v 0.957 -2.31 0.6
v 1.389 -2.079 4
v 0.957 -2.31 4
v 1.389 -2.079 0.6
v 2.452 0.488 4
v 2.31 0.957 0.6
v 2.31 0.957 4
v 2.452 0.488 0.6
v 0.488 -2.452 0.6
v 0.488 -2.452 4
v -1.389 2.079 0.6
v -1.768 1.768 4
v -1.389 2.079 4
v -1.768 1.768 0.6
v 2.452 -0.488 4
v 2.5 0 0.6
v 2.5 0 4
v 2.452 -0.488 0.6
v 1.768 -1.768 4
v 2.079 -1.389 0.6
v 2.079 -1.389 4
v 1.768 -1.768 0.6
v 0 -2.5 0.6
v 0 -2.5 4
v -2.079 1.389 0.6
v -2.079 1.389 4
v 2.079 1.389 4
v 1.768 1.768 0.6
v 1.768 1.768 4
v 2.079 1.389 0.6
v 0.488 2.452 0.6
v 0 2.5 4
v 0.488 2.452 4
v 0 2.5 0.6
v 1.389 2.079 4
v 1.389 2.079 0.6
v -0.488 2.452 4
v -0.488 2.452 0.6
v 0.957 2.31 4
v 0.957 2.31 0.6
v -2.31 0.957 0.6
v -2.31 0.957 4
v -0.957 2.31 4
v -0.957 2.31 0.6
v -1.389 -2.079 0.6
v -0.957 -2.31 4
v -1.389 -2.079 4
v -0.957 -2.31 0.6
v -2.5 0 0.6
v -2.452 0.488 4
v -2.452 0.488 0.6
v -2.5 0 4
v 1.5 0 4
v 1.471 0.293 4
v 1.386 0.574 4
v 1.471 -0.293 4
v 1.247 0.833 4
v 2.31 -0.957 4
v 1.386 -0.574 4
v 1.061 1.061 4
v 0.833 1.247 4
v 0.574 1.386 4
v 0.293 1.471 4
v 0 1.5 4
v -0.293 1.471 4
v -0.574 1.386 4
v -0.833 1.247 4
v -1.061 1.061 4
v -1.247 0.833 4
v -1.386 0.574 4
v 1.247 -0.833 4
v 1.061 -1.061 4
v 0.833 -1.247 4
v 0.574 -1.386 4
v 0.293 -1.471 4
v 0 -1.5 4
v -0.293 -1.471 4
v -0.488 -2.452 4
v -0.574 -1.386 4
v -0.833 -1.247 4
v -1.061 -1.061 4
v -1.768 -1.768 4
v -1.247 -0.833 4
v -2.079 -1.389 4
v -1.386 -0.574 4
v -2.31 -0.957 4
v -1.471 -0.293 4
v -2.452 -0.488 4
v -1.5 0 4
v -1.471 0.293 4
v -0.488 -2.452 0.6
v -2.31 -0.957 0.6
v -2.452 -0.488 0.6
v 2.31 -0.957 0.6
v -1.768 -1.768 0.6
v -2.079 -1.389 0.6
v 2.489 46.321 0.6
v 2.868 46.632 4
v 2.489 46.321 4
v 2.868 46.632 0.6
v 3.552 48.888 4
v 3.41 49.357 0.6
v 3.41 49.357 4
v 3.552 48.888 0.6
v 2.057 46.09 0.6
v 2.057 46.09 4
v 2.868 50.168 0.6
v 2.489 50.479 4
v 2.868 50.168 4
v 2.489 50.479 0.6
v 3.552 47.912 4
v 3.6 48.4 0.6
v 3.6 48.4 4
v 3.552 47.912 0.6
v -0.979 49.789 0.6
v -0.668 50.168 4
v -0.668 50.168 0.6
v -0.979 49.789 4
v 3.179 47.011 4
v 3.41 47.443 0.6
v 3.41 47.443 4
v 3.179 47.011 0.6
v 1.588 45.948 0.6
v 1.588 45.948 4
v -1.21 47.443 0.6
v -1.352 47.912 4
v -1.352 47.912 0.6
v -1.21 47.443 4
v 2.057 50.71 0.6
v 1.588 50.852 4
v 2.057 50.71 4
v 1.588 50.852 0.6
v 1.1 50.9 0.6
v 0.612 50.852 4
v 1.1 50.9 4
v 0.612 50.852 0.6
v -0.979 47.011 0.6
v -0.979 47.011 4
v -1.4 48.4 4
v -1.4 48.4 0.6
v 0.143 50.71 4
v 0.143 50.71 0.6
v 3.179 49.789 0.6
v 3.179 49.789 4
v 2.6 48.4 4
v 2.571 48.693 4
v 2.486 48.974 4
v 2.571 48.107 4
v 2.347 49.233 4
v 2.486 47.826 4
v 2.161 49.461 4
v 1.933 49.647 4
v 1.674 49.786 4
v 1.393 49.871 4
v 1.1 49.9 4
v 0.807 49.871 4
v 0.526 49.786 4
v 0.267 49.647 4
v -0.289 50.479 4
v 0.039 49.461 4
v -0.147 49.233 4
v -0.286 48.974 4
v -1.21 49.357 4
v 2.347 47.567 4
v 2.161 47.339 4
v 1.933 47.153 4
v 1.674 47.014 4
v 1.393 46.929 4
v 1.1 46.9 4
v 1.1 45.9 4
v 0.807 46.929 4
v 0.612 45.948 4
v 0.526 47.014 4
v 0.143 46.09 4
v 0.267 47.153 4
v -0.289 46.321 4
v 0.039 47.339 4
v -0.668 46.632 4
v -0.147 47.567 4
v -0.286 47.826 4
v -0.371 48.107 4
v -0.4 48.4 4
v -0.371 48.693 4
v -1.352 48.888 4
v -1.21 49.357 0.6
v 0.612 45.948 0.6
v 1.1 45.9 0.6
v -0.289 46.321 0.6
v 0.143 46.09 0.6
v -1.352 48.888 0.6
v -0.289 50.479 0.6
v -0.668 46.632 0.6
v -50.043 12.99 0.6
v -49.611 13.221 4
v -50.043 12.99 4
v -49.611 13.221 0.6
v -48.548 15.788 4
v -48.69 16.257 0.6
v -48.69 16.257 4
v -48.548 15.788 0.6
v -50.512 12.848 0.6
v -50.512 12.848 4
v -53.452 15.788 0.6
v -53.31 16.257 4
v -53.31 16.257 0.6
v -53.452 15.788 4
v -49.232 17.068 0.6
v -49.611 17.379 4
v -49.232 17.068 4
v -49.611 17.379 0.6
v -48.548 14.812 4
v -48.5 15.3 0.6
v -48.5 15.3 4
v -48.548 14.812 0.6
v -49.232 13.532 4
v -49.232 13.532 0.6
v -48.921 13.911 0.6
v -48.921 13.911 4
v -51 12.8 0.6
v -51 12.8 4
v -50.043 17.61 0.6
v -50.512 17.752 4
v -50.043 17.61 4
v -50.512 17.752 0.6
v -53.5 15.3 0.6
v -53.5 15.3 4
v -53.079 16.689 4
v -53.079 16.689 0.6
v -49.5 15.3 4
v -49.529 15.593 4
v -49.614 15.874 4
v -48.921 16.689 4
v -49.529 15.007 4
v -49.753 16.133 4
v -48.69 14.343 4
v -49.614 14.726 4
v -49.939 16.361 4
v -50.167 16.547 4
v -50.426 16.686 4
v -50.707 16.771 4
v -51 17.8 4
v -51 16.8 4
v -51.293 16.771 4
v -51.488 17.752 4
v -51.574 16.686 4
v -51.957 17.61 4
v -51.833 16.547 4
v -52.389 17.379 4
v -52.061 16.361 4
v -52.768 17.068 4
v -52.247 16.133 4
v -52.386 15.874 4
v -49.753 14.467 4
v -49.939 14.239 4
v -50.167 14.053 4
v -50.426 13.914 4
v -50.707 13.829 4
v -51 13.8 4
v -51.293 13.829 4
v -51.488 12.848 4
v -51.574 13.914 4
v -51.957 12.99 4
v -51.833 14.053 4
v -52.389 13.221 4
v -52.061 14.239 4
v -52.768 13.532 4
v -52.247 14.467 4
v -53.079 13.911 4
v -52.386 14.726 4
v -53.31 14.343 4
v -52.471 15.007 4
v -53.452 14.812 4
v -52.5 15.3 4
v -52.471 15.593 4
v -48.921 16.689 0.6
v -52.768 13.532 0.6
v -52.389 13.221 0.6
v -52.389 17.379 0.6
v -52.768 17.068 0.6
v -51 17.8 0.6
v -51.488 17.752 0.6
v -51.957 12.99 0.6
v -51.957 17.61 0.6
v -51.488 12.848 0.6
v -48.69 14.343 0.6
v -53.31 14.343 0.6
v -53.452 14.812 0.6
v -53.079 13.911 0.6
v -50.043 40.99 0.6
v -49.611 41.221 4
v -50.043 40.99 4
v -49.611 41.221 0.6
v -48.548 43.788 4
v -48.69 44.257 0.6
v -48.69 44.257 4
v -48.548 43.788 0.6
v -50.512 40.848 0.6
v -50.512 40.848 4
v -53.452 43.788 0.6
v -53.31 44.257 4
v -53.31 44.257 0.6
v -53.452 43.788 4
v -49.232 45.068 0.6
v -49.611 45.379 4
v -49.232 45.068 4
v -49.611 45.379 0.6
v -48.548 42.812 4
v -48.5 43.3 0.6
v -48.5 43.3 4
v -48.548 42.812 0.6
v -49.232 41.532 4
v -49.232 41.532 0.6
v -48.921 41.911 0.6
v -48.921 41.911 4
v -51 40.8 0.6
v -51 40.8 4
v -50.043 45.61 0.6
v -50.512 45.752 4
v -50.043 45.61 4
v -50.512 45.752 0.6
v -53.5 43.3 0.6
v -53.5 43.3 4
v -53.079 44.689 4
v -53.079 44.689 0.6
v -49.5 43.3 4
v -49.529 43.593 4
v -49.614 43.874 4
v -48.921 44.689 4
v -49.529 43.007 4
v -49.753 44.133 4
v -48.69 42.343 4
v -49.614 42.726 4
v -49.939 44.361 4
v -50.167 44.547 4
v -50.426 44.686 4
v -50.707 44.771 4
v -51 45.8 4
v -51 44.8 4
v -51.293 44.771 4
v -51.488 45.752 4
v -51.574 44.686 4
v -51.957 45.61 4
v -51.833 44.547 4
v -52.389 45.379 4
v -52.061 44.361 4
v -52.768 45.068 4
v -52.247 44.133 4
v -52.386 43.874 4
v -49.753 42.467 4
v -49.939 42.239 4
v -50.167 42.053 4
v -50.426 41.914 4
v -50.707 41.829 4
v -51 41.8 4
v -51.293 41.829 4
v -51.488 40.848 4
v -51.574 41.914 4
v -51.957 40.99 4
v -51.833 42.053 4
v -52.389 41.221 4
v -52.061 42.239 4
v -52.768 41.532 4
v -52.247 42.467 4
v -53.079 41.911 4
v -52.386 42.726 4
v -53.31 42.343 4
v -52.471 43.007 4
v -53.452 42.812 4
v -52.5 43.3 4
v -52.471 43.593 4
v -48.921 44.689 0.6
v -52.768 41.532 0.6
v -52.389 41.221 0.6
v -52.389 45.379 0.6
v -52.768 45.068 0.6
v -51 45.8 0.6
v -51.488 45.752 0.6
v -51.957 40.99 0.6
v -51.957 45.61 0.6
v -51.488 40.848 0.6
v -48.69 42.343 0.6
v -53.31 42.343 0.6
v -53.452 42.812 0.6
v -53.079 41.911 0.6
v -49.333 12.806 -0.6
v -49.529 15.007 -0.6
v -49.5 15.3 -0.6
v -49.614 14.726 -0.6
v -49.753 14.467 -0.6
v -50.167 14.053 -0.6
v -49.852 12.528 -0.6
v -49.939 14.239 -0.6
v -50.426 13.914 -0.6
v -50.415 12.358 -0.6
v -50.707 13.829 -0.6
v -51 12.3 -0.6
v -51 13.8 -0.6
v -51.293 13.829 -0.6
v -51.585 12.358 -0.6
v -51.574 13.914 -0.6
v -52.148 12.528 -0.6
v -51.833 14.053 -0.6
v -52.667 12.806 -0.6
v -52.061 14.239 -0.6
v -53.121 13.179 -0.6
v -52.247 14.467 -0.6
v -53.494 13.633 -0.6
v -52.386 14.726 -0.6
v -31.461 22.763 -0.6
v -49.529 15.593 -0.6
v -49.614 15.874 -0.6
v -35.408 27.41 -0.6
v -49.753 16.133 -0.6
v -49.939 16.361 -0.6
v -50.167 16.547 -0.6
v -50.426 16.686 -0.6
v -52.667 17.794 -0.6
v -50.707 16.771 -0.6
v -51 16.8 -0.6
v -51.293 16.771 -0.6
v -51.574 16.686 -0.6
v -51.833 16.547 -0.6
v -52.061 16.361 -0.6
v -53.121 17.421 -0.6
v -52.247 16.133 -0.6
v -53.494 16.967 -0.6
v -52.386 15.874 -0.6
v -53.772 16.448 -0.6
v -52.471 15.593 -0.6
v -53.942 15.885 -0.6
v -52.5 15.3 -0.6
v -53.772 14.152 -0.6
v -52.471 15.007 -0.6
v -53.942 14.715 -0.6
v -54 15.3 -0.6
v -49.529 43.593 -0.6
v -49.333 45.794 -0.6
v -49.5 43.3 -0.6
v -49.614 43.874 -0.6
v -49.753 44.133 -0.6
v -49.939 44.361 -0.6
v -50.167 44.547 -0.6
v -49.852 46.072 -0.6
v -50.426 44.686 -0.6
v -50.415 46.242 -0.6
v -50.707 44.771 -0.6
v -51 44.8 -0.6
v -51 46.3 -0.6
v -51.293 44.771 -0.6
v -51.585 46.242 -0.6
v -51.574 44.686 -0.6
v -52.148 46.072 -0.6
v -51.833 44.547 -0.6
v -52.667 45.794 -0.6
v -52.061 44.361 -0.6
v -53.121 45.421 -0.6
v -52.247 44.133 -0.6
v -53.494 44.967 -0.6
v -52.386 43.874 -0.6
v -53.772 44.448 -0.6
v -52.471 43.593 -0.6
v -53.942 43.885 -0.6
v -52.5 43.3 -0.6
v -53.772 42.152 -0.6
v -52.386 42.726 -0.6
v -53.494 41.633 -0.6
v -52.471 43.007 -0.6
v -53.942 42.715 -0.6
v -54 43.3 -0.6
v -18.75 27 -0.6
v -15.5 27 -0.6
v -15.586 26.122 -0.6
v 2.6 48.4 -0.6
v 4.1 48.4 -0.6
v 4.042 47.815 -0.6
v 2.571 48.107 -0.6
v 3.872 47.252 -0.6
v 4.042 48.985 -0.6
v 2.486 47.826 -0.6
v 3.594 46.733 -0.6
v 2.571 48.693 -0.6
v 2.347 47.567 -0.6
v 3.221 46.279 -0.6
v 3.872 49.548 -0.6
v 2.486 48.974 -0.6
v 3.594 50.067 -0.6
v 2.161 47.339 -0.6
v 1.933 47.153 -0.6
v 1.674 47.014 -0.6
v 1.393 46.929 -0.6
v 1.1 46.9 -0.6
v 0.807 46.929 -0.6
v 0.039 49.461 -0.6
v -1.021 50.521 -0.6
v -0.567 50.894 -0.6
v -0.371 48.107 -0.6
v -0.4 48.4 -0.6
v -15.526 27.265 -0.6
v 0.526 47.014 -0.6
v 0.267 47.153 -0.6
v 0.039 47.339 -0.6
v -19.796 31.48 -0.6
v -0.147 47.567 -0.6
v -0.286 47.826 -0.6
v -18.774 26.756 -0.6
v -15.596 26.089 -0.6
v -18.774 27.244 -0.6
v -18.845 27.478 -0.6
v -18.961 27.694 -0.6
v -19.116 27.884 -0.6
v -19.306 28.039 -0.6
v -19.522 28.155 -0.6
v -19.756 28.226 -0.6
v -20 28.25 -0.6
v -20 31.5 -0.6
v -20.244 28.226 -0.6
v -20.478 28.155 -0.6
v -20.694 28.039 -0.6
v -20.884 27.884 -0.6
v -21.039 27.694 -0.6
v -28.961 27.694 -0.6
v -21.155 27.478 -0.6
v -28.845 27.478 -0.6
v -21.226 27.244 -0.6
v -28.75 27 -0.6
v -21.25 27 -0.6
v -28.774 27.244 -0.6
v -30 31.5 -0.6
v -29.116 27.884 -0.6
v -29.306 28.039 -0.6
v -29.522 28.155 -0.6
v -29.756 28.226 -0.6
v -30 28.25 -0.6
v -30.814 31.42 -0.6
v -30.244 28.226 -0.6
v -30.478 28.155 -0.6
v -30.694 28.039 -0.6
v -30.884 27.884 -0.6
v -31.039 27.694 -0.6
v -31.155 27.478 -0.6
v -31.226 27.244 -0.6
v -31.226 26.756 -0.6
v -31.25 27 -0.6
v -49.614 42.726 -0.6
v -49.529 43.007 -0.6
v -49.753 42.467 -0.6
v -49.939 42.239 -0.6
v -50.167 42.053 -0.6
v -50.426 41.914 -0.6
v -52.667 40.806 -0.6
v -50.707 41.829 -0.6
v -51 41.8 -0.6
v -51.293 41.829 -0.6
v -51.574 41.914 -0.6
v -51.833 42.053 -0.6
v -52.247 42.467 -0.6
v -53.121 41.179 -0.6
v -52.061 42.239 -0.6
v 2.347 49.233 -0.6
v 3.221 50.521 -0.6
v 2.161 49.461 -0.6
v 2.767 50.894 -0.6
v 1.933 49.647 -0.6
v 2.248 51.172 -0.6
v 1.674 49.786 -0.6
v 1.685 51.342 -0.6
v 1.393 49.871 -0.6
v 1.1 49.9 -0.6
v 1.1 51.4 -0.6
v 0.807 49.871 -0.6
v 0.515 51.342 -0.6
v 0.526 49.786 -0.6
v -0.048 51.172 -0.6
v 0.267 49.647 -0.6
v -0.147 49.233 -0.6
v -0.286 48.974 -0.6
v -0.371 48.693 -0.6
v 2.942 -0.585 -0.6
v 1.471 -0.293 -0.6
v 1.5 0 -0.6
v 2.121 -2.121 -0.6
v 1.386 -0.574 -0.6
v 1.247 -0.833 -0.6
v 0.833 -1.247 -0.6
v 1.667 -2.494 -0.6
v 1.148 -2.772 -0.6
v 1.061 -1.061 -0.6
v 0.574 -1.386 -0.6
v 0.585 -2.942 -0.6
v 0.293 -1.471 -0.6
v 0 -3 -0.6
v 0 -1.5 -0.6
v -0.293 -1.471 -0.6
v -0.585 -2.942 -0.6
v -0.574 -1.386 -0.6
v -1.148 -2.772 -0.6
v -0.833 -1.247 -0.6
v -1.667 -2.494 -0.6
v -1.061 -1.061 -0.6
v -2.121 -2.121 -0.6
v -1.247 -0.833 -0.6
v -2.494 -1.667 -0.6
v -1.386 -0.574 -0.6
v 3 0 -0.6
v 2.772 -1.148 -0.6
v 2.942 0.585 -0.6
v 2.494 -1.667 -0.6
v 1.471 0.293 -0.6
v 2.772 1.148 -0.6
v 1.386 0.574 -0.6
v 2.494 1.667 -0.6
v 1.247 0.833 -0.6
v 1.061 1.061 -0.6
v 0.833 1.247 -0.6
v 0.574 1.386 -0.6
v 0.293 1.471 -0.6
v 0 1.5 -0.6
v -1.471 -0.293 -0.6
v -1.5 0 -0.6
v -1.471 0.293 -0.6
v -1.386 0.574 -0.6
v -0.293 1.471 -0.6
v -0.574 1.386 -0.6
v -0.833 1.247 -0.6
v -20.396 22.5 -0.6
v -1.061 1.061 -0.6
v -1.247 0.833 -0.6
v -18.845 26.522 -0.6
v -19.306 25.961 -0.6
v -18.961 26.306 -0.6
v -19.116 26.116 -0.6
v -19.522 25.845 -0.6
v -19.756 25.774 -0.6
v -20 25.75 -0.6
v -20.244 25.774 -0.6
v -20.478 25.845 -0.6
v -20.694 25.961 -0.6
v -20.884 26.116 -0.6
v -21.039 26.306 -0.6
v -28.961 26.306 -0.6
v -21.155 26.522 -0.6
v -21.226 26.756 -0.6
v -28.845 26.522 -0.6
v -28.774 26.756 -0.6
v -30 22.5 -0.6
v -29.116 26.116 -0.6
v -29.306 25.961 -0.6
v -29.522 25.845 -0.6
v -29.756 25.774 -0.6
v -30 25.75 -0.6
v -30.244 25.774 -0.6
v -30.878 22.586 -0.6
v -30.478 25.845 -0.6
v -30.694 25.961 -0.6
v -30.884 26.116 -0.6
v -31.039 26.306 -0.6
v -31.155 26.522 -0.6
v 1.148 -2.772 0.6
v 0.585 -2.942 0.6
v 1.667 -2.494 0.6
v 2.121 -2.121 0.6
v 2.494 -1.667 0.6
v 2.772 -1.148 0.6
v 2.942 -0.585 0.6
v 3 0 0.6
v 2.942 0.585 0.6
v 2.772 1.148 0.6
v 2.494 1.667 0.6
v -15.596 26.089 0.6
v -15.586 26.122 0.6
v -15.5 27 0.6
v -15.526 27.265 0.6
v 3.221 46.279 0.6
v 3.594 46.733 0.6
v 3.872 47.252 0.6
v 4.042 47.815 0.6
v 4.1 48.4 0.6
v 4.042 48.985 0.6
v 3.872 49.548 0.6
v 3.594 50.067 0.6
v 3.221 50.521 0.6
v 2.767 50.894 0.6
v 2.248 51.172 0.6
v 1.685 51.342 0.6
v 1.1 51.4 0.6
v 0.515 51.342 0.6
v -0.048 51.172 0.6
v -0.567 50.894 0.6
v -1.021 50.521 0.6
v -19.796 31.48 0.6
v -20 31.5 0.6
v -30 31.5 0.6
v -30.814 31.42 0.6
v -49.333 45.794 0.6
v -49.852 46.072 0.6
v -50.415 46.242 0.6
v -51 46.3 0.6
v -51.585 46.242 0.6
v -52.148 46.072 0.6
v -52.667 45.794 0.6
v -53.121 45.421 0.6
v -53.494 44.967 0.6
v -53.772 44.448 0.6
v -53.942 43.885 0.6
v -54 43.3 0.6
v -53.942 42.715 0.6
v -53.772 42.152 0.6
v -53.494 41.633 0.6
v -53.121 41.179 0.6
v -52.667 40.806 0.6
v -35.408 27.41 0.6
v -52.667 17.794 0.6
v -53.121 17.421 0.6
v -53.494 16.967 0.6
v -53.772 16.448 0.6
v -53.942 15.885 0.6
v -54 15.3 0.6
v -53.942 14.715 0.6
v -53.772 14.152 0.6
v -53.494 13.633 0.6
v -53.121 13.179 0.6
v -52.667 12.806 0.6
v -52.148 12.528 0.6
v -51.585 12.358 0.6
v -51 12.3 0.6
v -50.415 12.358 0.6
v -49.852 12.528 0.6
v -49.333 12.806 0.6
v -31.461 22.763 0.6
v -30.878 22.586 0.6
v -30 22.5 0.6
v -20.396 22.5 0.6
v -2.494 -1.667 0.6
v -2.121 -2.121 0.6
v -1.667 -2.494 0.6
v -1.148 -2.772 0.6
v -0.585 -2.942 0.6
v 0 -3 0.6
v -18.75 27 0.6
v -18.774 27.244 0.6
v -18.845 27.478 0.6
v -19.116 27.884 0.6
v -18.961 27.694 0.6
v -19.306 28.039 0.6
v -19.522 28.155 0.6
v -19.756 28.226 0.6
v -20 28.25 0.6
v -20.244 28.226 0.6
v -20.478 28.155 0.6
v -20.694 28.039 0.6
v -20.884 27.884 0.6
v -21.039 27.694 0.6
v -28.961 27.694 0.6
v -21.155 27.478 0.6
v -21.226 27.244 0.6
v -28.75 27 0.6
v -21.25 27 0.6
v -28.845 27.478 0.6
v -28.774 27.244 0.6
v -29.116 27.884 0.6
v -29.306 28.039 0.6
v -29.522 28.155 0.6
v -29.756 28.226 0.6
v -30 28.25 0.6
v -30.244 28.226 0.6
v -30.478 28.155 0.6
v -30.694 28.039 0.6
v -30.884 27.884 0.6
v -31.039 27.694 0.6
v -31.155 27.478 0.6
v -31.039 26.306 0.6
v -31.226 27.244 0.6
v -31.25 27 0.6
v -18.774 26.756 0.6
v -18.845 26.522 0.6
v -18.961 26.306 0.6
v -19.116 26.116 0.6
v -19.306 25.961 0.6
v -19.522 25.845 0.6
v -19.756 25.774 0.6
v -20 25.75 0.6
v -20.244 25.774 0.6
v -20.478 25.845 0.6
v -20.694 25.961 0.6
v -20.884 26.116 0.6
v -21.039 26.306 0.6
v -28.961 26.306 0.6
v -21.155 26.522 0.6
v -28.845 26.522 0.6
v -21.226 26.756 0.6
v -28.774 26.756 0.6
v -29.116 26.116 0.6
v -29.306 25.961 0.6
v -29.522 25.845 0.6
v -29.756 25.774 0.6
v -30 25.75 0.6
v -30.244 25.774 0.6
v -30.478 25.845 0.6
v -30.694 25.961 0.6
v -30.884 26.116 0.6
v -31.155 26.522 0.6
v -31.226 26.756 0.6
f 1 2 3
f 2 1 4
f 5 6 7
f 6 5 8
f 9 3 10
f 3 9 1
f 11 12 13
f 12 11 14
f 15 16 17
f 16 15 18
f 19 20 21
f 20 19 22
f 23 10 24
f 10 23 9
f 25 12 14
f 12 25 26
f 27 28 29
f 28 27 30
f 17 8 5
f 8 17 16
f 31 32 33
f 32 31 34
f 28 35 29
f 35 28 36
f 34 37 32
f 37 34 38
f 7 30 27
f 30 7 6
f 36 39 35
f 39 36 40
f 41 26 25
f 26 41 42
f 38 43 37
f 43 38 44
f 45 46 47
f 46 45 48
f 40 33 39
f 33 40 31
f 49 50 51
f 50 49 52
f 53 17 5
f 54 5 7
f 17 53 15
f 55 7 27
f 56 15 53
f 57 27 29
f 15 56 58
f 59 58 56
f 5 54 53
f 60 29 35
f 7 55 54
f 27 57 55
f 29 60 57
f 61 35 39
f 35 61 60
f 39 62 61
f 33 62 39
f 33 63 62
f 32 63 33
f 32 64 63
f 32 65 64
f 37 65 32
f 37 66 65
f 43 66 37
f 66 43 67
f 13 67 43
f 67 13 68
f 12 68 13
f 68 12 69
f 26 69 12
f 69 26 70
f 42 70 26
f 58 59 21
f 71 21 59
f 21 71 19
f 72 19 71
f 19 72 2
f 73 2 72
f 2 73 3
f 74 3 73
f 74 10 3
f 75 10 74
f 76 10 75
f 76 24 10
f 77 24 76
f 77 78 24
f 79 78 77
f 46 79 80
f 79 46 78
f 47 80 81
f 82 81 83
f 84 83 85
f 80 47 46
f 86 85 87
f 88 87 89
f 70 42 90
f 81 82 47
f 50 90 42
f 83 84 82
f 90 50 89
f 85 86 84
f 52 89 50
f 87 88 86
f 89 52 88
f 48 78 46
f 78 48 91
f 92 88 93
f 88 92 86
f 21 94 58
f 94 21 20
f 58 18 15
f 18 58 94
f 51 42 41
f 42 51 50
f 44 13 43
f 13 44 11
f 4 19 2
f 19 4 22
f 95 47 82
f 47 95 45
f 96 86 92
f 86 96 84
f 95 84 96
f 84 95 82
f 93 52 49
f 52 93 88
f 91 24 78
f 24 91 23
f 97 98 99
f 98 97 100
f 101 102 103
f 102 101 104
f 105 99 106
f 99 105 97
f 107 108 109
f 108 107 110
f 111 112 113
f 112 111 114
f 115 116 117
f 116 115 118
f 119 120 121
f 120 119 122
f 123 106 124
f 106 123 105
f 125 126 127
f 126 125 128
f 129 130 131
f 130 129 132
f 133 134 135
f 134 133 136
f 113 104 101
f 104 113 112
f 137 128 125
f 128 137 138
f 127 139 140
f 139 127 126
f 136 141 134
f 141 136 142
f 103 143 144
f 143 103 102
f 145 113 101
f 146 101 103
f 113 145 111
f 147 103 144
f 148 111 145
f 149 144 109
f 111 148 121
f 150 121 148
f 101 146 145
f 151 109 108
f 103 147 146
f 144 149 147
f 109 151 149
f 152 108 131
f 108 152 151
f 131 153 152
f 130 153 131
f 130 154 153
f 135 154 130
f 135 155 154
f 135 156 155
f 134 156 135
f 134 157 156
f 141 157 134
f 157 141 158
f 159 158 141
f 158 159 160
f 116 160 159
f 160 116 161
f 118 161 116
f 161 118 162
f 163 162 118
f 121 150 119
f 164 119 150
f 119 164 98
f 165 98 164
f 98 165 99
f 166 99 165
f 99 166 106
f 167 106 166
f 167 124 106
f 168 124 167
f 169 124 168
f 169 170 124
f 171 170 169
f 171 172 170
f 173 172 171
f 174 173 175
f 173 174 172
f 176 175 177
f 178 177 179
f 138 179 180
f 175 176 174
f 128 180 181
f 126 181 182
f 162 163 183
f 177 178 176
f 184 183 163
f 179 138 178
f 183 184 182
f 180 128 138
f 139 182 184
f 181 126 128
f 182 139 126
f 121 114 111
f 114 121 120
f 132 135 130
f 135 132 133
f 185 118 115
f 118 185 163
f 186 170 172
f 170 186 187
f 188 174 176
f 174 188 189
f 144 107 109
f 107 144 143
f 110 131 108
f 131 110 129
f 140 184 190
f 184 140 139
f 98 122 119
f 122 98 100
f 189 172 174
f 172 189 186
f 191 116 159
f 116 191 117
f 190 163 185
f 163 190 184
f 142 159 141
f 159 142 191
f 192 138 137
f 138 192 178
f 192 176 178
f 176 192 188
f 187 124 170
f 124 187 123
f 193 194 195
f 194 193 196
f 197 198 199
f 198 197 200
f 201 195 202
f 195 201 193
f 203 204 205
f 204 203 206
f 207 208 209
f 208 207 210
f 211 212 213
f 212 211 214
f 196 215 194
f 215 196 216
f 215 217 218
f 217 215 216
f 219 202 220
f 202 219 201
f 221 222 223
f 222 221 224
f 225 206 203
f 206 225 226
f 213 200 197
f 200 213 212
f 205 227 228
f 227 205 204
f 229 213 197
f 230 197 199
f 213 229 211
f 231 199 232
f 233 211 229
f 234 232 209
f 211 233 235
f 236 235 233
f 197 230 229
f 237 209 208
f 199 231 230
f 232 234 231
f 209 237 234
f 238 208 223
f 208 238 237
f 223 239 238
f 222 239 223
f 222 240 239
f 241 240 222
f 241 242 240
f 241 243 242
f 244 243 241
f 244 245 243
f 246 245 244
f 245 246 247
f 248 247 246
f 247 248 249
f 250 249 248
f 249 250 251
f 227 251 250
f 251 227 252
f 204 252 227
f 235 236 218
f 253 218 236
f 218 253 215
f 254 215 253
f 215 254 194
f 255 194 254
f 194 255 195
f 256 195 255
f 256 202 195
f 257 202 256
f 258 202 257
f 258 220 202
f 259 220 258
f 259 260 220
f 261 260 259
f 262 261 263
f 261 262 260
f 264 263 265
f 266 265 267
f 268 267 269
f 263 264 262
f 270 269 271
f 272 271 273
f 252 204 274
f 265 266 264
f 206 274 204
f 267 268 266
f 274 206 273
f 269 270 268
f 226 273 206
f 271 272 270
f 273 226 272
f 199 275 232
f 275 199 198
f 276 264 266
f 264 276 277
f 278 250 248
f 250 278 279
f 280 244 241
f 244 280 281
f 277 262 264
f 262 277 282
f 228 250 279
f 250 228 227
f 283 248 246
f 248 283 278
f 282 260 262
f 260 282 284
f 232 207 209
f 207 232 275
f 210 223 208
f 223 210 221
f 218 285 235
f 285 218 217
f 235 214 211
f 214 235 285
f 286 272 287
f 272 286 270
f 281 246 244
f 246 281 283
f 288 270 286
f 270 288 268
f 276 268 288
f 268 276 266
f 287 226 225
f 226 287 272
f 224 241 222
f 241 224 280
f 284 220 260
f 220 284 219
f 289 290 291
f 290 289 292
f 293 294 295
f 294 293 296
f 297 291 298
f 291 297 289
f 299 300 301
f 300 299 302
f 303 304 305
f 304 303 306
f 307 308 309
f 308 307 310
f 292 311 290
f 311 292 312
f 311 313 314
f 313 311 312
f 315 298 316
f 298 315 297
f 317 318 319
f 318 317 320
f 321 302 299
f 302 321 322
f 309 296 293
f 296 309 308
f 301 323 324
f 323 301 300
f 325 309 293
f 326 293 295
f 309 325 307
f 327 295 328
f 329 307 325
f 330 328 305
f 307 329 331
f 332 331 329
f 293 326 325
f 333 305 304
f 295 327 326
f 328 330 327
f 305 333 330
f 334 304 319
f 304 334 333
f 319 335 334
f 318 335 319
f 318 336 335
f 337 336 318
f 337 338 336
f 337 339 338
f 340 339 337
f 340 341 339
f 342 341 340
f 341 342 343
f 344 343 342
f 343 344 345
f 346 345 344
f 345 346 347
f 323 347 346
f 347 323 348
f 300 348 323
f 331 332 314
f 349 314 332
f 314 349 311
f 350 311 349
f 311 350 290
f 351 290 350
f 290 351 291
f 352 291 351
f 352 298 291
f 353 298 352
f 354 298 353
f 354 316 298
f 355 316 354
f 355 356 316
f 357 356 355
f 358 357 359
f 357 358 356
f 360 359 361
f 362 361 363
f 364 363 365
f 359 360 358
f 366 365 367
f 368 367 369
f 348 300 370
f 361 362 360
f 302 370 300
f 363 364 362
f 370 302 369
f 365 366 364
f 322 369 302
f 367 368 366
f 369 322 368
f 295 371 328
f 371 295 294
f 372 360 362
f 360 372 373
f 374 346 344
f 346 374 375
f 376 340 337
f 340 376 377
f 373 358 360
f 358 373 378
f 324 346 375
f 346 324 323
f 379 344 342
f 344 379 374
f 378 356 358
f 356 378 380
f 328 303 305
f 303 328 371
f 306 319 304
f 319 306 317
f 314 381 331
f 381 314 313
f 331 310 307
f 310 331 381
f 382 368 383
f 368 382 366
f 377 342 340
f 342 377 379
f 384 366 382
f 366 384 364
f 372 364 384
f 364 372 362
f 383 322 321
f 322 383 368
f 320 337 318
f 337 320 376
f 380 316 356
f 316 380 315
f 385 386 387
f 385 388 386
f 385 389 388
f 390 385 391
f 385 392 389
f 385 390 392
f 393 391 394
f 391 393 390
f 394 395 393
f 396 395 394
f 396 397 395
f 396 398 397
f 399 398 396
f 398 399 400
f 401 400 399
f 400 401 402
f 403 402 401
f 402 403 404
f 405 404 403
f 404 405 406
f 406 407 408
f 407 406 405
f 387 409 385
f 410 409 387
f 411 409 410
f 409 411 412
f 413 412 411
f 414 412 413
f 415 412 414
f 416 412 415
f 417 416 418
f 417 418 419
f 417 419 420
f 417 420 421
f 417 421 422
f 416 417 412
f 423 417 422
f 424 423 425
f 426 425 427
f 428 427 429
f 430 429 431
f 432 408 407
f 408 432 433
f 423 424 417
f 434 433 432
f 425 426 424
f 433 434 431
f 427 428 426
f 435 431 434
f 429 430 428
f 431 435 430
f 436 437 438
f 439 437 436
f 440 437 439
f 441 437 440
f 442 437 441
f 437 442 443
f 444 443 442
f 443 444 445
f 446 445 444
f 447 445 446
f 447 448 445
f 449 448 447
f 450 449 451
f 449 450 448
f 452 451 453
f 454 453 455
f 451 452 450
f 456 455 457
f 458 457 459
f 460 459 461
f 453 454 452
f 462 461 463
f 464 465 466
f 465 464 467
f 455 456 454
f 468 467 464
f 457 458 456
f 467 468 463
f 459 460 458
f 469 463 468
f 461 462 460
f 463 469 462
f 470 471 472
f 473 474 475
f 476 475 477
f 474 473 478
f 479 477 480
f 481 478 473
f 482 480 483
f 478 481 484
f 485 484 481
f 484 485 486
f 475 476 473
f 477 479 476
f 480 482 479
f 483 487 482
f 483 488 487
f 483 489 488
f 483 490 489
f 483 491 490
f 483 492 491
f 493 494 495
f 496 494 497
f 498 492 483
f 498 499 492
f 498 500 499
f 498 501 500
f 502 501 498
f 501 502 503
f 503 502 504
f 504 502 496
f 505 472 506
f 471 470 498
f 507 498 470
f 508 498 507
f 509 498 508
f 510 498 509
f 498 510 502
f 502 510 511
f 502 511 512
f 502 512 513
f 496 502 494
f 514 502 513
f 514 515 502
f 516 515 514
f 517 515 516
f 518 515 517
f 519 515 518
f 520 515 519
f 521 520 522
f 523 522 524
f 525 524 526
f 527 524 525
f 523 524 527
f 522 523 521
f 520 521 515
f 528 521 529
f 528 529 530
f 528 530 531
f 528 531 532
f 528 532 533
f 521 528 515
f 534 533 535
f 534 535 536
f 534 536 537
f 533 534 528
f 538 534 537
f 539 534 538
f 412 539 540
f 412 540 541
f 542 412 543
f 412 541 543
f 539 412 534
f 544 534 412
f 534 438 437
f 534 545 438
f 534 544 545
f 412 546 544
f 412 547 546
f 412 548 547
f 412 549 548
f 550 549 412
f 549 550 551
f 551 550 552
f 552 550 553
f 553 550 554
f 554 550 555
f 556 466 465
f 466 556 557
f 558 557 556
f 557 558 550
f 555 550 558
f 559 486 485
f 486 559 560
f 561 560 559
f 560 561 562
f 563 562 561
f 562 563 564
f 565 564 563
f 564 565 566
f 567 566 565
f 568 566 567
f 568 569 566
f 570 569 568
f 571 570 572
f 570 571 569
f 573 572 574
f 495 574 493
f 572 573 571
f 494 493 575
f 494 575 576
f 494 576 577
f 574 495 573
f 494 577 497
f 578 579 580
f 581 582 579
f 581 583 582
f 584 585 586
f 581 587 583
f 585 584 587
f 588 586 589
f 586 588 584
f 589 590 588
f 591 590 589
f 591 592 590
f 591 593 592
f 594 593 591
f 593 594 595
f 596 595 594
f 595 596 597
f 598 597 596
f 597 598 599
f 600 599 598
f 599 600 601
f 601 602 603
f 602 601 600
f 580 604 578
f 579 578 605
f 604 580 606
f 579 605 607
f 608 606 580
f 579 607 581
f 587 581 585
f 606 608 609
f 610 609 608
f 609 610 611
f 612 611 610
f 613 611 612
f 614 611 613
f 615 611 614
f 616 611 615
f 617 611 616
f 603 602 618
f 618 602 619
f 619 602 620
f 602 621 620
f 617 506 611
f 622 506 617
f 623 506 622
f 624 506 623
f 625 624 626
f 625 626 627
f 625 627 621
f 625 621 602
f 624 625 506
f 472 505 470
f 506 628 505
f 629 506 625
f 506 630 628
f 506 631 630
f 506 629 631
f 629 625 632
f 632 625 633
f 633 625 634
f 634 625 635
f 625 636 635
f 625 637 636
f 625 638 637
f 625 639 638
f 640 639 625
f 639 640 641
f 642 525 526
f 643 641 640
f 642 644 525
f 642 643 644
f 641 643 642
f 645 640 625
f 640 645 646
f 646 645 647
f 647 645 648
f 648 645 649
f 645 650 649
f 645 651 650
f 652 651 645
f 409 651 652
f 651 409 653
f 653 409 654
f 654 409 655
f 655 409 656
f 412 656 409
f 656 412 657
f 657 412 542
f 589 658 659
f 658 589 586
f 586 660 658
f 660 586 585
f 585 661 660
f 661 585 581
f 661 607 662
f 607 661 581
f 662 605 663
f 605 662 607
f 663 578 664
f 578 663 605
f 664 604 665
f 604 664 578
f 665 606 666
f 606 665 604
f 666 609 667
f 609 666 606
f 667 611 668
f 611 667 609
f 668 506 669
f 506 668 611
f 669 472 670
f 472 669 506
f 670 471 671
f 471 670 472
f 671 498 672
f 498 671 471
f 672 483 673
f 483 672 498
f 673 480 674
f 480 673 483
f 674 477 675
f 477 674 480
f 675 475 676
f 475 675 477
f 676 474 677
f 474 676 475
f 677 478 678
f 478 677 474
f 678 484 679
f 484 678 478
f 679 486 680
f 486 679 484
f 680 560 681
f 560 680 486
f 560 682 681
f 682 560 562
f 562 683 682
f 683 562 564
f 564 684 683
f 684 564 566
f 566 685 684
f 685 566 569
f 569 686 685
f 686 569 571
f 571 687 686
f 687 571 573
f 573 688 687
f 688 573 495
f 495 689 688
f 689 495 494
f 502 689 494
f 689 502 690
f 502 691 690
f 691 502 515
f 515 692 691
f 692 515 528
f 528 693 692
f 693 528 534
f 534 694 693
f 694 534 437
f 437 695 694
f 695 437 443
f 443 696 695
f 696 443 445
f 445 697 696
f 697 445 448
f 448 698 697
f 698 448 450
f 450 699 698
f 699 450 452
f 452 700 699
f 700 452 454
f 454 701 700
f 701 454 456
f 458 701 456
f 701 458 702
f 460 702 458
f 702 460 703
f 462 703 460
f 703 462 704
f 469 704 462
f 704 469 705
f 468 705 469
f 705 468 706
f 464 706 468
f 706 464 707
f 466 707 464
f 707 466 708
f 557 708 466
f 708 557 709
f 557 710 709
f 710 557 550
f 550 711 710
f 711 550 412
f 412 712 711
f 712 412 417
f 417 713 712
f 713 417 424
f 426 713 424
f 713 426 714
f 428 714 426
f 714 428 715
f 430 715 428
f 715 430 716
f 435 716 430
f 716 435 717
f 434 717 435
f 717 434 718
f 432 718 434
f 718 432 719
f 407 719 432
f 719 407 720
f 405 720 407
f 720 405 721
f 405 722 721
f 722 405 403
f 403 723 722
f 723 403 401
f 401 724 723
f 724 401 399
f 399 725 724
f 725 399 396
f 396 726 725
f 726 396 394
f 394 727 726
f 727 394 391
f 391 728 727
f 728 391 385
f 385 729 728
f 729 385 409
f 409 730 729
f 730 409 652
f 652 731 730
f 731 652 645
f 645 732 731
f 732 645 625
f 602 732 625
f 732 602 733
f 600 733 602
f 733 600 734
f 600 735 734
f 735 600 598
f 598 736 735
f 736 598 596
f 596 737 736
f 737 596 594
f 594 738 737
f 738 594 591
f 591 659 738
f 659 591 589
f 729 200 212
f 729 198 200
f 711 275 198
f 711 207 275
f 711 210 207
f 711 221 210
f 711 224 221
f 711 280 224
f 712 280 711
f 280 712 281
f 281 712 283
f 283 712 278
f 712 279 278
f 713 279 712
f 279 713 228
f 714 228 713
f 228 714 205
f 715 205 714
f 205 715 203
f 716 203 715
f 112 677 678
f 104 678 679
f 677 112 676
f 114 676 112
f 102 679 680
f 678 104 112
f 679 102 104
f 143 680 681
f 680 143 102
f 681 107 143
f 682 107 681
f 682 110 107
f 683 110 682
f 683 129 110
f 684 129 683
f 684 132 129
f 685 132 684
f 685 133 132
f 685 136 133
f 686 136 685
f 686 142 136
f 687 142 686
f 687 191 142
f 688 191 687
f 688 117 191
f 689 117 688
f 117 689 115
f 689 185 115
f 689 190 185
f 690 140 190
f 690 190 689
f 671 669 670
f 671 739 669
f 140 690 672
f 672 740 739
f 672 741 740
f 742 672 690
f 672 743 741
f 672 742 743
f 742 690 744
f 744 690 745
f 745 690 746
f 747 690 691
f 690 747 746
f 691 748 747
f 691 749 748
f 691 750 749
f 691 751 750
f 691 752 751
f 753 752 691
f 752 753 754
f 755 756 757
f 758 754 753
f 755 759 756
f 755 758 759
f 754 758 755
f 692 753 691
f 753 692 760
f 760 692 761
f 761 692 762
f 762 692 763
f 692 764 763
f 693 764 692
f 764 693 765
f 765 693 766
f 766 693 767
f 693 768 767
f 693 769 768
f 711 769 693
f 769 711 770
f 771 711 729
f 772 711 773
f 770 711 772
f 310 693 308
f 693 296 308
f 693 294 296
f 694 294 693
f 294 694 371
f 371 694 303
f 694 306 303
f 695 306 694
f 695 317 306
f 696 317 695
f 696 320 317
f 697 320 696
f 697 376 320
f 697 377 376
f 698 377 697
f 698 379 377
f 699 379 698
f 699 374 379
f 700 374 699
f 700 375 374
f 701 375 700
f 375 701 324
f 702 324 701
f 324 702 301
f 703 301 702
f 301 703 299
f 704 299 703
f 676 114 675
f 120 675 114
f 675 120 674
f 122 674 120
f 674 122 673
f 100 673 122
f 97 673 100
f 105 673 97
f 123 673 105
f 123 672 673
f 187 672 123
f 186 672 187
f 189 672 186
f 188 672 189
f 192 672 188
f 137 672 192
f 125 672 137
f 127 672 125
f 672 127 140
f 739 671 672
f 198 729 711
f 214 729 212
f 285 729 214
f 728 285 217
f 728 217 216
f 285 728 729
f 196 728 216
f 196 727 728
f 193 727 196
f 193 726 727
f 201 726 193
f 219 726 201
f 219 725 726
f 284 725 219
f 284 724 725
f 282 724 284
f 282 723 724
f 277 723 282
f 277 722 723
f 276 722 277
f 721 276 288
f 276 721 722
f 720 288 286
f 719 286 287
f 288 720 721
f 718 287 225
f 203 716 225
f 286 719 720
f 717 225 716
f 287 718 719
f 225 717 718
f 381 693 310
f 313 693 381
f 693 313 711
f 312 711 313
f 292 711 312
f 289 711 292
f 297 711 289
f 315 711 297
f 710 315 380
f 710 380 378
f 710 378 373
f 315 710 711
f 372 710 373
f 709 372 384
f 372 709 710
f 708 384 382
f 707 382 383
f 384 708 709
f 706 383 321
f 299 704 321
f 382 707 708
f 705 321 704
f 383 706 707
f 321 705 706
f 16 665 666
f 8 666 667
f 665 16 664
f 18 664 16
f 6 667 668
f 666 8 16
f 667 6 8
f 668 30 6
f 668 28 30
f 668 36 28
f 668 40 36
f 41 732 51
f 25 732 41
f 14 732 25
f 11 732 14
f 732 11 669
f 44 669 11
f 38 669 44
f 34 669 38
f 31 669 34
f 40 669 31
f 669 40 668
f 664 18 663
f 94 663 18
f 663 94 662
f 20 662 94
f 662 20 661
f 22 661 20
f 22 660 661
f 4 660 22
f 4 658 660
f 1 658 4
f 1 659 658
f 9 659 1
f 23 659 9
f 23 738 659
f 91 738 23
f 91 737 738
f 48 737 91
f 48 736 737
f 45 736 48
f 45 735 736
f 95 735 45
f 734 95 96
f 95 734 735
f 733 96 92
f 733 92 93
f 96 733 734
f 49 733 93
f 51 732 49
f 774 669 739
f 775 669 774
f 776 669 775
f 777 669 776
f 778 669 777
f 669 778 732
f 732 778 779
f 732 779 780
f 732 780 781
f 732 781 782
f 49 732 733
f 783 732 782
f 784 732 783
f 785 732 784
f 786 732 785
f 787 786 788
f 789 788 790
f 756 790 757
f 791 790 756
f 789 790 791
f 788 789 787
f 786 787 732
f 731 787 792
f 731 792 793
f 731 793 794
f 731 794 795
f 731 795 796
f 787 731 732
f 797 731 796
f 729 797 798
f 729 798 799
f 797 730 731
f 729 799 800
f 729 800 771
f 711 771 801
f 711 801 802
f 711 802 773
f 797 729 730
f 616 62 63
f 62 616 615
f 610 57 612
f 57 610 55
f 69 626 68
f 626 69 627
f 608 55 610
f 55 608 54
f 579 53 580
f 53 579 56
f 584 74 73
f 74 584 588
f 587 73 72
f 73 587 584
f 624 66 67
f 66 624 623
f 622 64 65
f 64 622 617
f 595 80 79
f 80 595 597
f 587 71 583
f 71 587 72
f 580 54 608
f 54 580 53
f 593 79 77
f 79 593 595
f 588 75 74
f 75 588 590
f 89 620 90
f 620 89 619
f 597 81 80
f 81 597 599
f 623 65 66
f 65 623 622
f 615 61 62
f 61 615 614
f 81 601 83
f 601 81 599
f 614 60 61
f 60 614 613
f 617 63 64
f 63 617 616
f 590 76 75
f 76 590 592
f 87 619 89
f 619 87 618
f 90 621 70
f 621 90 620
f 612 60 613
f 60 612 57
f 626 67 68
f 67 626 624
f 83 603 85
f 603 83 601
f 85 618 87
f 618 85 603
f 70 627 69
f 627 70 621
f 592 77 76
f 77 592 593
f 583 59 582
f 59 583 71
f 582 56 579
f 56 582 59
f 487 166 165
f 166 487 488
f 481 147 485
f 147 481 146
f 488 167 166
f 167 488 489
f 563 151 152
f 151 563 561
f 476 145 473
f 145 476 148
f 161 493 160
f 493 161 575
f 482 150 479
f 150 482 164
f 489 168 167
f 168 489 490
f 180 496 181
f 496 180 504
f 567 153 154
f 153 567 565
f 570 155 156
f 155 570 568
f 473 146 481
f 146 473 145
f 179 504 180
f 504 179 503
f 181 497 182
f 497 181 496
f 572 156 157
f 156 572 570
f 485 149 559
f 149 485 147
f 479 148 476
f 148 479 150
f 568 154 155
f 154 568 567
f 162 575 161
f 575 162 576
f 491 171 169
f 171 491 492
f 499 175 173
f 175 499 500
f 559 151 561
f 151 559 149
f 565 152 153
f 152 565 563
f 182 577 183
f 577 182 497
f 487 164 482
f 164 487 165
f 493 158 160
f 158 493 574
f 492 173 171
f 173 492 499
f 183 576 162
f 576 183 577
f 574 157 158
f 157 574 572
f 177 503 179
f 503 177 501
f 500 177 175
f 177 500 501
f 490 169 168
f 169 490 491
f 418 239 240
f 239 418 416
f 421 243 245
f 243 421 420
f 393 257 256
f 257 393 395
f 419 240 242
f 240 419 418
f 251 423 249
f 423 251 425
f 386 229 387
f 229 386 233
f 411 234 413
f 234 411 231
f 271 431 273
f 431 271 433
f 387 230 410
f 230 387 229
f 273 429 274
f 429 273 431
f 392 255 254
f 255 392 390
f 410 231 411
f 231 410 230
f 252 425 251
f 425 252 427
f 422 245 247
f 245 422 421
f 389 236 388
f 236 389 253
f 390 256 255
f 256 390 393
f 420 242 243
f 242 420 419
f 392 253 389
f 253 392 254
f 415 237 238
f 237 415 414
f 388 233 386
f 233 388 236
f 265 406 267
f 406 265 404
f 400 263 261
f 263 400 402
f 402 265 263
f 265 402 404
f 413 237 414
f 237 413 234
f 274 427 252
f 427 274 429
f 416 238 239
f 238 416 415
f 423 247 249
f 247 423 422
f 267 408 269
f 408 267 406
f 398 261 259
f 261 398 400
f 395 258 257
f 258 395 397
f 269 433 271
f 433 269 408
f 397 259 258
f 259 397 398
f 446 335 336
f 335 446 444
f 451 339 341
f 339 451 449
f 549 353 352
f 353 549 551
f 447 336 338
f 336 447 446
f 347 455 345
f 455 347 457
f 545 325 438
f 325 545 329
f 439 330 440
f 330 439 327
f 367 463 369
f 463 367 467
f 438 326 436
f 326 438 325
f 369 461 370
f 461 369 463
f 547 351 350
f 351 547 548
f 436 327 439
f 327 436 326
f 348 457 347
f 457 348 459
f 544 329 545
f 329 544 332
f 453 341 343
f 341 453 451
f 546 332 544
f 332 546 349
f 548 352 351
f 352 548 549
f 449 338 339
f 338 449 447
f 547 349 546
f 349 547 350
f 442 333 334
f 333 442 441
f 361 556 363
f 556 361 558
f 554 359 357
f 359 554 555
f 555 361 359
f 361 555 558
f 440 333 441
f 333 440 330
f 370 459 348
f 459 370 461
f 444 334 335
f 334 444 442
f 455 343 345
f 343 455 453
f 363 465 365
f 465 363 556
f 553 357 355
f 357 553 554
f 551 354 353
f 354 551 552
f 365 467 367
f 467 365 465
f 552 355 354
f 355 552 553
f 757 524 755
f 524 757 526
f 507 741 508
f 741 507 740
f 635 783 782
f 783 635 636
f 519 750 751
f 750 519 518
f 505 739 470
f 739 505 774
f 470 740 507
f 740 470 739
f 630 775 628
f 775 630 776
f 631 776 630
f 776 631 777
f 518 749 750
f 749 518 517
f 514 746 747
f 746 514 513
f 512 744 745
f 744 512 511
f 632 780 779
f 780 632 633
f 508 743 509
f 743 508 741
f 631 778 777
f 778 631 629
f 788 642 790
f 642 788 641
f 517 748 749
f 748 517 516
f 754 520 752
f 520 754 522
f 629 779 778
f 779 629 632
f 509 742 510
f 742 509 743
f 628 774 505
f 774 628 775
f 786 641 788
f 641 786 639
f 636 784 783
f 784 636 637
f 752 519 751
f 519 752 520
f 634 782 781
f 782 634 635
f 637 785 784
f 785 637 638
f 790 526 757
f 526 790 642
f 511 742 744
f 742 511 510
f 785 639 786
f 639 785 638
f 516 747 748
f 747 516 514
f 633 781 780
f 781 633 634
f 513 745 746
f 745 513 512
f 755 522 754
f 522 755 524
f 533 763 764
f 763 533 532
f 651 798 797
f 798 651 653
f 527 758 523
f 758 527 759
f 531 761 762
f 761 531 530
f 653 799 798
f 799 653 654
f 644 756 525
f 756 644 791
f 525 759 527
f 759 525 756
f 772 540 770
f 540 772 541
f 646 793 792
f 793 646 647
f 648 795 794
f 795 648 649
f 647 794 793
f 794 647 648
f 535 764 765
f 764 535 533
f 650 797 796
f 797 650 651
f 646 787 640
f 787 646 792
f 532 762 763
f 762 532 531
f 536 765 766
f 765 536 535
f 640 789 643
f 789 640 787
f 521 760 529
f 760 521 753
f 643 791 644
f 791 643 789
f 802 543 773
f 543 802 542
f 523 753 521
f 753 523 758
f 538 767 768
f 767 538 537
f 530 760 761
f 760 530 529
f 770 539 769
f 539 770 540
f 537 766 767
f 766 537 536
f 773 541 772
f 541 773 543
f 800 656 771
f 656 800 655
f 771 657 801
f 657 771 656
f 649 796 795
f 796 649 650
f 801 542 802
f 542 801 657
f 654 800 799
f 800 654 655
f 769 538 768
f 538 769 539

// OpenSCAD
/* Copyright (c) 2022  Paulo Costa
   All rights reserved.

   Redistribution and use in source and binary forms, with or without
   modification, are permitted provided that the following conditions are met:

   * Redistributions of source code must retain the above copyright
     notice, this list of conditions and the following disclaimer.
   * Redistributions in binary form must reproduce the above copyright
     notice, this list of conditions and the following disclaimer in
     the documentation and/or other materials provided with the
     distribution.
   * Neither the name of the copyright holders nor the names of
     contributors may be used to endorse or promote products derived
     from this software without specific prior written permission.

  THIS SOFTWARE IS PROVIDED BY THE COPYRIGHT HOLDERS AND CONTRIBUTORS "AS IS"
  AND ANY EXPRESS OR IMPLIED WARRANTIES, INCLUDING, BUT NOT LIMITED TO, THE
  IMPLIED WARRANTIES OF MERCHANTABILITY AND FITNESS FOR A PARTICULAR PURPOSE
  ARE DISCLAIMED. IN NO EVENT SHALL THE COPYRIGHT OWNER OR CONTRIBUTORS BE
  LIABLE FOR ANY DIRECT, INDIRECT, INCIDENTAL, SPECIAL, EXEMPLARY, OR
  CONSEQUENTIAL DAMAGES (INCLUDING, BUT NOT LIMITED TO, PROCUREMENT OF
  SUBSTITUTE GOODS OR SERVICES; LOSS OF USE, DATA, OR PROFITS; OR BUSINESS
  INTERRUPTION) HOWEVER CAUSED AND ON ANY THEORY OF LIABILITY, WHETHER IN
  CONTRACT, STRICT LIABILITY, OR TORT (INCLUDING NEGLIGENCE OR OTHERWISE)
  ARISING IN ANY WAY OUT OF THE USE OF THIS SOFTWARE, EVEN IF ADVISED OF THE
  POSSIBILITY OF SUCH DAMAGE. */

$fn = 32;

arduino_holes = [
  [0, 0],
  [1.1, 48.4],
  [-51, 15.3],
  [-51, 43.3]
];

module place_things(pos_list) {
   for (t = pos_list) {  
     translate(t)
     //children(0);
     children([0:1:$children-1]);
   }
 }


module uno_support(db = 6, cx1 = -20, cx2 = -30, cy = 27) {

  difference() {
    union() {
      place_things(arduino_holes)
      cylinder(d = 5, h = 4);
      
      linear_extrude(height = 1.2, center = true, convexity = 10, twist = 0) {
        hull() {
          translate(arduino_holes[0])
          circle(d = db); 
          
          translate([cx1, cy, 0])
          circle(d = db); 
        }

        hull() {
          translate(arduino_holes[1])
          circle(d = db); 
          
          translate([cx1, cy, 0])
          circle(d = db); 
        }

        hull() {
          translate(arduino_holes[3])
          circle(d = db); 
          
          translate([cx2, cy, 0])
          circle(d = db); 
        }
        
        hull() {
          translate(arduino_holes[2])
          circle(d = db); 
          
          translate([cx2, cy, 0])
          circle(d = db); 
        }

        hull() {
          translate([cx1, cy, 0])
          circle(d = db + 3); 
          
          translate([cx2, cy, 0])
          circle(d = db + 3); 
        }
      }
    }
    place_things(arduino_holes)
    cylinder(d = 3, h = 10, center = true);    
    
    translate([cx1, cy, 0])
    cylinder(d = 2.5, h = 10, center = true);    

    translate([cx2, cy, 0])
    cylinder(d = 2.5, h = 10, center = true);    

  }
}


uno_support();
